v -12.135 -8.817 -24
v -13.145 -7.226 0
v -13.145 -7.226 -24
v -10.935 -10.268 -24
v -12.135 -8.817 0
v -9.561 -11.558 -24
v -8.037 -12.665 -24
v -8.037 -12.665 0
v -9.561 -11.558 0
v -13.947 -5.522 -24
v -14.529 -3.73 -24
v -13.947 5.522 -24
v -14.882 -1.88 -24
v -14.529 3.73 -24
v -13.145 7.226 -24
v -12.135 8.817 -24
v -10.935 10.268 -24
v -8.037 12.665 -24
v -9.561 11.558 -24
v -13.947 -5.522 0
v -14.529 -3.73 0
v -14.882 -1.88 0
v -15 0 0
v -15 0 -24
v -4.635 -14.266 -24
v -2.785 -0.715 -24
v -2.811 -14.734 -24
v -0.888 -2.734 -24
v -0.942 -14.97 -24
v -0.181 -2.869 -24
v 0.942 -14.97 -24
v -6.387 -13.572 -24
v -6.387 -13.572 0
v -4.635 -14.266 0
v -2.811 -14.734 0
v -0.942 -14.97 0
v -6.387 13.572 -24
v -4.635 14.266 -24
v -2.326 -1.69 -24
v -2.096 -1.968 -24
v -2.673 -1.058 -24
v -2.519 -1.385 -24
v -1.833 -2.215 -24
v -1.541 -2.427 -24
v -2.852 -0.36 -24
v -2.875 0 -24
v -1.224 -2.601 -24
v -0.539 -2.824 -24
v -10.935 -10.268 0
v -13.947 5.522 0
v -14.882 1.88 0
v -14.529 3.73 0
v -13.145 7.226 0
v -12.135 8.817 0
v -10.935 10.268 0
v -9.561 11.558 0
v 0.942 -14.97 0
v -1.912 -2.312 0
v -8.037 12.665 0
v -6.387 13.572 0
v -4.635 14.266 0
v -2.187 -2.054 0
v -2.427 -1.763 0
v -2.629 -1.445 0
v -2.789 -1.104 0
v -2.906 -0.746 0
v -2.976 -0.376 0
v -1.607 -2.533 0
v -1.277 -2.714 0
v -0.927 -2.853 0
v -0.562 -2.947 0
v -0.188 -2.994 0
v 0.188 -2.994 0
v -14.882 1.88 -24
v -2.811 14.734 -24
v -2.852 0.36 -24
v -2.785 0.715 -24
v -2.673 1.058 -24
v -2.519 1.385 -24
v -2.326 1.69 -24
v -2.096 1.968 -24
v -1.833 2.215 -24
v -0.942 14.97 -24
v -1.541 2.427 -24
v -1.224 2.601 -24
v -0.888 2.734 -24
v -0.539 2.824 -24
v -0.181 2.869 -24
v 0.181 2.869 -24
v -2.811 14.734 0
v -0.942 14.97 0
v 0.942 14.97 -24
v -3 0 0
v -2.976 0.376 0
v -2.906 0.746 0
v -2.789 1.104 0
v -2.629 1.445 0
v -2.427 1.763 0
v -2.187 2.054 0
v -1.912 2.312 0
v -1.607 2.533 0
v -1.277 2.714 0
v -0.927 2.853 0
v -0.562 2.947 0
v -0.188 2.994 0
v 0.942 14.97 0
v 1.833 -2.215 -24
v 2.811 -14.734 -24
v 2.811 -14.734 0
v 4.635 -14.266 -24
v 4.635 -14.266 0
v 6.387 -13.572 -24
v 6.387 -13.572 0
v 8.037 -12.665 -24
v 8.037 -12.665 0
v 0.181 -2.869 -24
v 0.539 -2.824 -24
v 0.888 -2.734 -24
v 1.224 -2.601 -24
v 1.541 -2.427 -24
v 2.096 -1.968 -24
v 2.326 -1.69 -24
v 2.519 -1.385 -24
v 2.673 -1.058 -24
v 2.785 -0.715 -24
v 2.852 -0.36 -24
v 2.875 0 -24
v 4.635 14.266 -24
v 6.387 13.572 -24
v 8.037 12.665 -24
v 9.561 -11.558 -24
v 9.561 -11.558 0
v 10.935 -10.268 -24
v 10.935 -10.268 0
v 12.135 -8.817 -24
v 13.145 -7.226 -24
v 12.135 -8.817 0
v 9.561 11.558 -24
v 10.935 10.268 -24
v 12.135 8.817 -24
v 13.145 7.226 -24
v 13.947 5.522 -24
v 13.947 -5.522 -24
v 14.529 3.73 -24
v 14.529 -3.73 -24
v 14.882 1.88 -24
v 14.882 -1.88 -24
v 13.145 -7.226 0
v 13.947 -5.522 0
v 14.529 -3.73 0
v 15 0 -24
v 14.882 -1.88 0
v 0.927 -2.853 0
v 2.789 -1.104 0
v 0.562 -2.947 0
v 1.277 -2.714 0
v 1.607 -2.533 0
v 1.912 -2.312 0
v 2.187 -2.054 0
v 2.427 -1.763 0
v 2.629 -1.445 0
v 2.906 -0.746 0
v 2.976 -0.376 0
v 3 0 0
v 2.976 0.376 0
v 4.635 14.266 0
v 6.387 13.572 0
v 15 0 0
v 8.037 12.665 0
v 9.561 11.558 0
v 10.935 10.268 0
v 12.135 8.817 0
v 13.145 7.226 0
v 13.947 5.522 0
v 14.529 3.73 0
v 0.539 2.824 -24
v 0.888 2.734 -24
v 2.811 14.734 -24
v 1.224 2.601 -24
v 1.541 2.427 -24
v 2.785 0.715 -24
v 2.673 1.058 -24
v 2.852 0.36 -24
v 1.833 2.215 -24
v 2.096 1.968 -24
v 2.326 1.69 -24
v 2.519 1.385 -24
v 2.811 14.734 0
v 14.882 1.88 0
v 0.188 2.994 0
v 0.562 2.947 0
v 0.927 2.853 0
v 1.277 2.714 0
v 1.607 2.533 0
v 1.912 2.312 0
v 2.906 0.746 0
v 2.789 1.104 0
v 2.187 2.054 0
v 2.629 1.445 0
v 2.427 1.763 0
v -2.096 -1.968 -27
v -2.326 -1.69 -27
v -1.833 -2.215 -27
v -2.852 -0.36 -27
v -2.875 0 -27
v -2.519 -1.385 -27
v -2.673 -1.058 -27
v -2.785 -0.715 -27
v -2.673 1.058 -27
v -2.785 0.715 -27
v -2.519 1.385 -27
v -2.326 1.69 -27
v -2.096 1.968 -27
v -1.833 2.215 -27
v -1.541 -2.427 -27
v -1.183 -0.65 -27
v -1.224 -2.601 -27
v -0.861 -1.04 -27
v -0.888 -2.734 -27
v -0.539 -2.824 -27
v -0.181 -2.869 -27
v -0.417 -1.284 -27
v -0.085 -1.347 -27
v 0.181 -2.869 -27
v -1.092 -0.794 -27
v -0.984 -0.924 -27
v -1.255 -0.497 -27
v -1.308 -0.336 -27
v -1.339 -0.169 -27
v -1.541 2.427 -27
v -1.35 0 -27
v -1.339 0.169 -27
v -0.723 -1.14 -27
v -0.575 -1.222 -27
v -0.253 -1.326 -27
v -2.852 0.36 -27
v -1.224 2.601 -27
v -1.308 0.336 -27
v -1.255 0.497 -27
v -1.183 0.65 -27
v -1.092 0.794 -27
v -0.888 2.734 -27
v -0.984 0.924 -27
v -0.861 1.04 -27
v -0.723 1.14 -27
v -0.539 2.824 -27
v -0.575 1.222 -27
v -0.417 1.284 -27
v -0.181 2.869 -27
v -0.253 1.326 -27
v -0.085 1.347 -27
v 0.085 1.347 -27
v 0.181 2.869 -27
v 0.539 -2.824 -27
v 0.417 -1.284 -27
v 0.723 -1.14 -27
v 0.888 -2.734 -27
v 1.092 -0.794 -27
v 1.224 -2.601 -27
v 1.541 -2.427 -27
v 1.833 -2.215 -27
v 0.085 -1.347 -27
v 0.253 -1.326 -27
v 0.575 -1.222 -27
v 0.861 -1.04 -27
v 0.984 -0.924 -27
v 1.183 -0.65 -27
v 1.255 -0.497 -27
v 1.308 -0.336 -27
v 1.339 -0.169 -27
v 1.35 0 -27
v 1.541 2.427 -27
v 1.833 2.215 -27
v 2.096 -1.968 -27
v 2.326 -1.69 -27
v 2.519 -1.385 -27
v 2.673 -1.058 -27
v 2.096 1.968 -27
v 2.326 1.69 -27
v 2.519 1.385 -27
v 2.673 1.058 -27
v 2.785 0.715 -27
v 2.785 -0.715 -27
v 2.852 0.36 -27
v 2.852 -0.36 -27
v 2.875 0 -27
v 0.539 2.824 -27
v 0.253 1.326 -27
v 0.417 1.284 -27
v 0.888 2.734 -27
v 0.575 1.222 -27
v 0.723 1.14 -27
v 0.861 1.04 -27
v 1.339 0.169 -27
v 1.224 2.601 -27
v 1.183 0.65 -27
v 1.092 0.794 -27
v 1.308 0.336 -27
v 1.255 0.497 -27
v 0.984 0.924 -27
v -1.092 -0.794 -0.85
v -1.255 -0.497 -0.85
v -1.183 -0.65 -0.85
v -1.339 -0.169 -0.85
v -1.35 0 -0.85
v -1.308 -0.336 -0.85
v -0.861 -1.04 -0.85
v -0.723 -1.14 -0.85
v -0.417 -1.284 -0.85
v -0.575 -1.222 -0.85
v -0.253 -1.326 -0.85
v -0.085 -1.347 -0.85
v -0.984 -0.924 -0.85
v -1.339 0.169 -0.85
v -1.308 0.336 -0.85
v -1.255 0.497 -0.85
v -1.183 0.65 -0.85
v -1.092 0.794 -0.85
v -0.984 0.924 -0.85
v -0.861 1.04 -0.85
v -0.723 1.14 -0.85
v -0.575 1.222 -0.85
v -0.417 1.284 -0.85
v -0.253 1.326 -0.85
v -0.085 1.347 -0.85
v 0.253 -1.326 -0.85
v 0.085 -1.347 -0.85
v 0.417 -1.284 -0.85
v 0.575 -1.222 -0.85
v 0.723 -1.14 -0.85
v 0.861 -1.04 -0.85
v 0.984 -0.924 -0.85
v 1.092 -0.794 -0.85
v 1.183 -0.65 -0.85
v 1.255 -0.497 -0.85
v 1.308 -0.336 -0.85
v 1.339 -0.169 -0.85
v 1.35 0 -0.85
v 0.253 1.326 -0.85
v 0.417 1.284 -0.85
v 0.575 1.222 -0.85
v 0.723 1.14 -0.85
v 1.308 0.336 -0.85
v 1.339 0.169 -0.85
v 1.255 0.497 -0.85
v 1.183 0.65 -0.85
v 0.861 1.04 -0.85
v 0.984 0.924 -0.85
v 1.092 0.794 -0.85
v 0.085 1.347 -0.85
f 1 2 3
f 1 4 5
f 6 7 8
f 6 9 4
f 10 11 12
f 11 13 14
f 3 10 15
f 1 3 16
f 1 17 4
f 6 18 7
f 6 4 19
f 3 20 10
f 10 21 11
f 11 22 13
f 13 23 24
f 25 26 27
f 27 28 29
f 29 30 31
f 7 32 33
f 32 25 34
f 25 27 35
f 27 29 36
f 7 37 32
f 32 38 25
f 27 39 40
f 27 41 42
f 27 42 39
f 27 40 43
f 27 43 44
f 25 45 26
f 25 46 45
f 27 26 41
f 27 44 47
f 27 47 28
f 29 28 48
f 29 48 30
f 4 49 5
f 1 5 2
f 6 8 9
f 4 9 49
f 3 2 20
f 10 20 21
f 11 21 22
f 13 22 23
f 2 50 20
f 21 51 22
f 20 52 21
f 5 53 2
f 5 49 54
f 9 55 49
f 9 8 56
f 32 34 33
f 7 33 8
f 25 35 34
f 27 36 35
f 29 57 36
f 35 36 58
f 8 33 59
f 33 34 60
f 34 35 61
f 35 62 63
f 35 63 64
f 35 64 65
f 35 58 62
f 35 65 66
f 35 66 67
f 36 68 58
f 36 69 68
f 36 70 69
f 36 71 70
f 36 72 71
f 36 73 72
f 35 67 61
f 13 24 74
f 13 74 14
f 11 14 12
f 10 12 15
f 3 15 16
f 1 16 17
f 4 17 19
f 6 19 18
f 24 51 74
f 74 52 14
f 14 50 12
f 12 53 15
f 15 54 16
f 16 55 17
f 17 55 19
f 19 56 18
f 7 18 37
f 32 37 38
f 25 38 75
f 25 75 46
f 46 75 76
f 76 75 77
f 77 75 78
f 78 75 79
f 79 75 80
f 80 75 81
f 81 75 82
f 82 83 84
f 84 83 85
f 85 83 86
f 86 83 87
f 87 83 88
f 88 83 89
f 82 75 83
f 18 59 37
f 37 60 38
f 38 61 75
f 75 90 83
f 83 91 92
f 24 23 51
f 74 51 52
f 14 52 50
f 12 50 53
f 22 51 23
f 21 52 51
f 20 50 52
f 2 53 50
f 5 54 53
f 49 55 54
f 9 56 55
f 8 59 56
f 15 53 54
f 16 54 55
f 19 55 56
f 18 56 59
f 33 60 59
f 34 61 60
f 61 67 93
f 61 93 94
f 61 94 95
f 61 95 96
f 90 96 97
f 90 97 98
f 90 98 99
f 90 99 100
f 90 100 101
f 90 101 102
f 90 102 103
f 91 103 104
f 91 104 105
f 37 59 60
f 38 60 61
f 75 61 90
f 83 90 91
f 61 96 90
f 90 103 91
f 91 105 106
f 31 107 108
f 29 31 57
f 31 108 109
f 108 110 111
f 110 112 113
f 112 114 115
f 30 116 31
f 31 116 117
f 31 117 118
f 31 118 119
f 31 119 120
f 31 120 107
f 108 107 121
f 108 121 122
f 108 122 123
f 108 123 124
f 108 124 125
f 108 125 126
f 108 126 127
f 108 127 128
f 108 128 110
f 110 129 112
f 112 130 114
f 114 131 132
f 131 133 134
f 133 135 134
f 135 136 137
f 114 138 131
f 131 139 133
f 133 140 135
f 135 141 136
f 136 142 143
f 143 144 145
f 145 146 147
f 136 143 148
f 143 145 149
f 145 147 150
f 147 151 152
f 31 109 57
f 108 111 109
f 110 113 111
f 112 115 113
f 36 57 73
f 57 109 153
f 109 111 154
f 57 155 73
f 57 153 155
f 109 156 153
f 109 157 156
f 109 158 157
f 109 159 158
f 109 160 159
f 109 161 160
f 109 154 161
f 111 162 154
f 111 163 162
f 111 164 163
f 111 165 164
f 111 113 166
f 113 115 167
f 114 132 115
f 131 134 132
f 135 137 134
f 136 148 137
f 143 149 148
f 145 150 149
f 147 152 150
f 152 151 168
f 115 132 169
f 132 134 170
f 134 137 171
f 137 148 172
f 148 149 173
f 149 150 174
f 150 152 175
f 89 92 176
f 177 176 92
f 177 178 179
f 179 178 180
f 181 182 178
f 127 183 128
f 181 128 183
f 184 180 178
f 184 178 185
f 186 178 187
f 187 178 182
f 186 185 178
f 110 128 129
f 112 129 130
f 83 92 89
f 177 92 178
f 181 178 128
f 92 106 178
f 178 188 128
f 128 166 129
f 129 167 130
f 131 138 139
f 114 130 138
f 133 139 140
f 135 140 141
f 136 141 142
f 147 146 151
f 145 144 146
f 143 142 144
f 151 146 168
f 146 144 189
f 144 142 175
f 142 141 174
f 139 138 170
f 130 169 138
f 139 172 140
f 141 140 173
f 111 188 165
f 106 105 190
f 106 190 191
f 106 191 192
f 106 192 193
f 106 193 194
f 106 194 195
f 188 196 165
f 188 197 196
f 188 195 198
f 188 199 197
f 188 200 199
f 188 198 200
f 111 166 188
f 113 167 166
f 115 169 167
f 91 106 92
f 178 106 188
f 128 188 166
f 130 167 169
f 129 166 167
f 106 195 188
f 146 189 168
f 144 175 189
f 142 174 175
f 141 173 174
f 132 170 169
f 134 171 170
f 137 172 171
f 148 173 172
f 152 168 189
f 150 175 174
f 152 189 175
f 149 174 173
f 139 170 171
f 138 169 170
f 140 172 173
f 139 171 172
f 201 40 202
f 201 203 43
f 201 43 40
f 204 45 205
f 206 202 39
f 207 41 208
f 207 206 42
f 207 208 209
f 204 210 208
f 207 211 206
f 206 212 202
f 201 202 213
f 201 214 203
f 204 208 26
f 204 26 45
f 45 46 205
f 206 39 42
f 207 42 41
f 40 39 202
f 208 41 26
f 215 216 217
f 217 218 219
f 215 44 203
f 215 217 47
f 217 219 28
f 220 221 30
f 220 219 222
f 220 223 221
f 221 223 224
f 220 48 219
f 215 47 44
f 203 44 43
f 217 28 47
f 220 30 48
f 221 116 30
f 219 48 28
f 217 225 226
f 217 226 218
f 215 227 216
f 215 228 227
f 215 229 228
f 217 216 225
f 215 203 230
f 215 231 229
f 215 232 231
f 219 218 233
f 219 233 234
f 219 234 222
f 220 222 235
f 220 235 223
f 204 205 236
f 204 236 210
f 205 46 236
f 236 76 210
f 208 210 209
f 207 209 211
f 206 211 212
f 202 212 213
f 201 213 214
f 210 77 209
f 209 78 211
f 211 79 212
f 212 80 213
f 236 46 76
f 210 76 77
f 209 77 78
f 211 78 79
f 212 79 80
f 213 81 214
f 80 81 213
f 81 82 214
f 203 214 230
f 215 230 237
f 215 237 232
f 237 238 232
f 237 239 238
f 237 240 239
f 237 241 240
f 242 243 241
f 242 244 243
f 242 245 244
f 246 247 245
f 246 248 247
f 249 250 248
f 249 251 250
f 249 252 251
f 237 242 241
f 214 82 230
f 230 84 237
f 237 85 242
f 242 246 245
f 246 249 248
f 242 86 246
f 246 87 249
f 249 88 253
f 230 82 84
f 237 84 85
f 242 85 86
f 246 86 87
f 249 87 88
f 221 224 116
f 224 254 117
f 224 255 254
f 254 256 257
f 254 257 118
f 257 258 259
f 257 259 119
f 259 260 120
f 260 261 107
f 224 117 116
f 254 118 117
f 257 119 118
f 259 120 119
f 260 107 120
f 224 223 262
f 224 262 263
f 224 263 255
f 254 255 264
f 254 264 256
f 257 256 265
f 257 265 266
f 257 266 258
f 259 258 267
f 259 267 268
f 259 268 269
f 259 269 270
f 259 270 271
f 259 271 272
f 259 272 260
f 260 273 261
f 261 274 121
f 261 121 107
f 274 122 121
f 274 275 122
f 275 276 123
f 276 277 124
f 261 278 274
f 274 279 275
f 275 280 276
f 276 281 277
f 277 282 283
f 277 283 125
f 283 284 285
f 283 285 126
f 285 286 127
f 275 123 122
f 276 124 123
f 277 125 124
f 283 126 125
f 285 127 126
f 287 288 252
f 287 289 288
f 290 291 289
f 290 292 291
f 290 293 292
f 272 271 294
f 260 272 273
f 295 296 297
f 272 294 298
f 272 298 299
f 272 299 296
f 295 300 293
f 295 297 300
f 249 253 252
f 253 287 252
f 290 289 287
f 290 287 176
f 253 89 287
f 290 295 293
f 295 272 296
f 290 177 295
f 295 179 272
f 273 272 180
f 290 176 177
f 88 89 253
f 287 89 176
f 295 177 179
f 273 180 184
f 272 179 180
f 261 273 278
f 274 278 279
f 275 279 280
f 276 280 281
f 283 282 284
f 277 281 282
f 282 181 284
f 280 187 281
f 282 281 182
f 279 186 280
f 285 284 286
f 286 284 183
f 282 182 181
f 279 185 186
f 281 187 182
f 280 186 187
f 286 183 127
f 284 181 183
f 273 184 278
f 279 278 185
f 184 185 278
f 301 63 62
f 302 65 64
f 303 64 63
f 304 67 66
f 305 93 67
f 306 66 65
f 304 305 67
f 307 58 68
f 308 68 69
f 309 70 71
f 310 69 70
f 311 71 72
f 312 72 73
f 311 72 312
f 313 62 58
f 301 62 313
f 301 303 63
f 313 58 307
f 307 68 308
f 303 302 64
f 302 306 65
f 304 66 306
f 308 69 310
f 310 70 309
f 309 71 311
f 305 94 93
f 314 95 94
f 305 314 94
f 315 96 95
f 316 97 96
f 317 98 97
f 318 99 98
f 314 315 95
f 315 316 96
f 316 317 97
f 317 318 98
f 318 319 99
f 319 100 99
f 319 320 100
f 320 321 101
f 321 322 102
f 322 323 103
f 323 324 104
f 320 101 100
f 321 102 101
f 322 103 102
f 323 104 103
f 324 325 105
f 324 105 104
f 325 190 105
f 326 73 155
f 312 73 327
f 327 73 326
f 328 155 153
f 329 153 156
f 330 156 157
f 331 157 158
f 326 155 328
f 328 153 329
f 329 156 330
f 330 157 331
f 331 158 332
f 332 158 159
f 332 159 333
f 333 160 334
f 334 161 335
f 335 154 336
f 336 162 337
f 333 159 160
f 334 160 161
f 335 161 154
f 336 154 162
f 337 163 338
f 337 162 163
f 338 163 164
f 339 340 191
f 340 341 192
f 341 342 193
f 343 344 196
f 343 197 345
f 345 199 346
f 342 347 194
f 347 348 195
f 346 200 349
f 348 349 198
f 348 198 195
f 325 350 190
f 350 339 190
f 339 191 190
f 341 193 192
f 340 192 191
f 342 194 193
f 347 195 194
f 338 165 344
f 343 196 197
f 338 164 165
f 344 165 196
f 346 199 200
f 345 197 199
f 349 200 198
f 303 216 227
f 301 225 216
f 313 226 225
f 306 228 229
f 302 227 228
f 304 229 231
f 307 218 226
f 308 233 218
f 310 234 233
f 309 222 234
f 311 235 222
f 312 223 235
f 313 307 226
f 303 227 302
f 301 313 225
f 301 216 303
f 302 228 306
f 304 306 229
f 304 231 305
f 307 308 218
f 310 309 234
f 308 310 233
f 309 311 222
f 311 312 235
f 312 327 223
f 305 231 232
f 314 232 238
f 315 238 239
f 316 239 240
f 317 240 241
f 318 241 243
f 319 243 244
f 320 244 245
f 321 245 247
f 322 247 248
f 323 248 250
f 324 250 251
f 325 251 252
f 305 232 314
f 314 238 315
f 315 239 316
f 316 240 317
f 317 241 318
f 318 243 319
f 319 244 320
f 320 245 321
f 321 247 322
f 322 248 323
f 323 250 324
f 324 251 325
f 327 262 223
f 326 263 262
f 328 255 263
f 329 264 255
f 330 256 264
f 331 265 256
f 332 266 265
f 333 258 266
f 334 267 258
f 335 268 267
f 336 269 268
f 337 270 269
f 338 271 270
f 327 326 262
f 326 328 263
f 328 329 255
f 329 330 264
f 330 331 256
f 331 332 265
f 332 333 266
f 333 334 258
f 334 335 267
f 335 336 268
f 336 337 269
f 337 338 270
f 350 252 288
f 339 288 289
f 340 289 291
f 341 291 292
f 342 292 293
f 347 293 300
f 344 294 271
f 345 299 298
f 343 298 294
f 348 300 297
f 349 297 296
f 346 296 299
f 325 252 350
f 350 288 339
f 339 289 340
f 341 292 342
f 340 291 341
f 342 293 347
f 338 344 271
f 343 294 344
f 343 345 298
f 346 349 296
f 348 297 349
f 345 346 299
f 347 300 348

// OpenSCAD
$fn = 50;

difference() {
	union() {
		translate(v = [0, 0, -24.0]) {
			cylinder(h = 24, r = 15.0);
		}
		#translate(v = [0, 0, -27.0]) {
			cylinder(h = 27, r = 2.875);
		}
	}
	union() {
		translate(v = [0, 0, 0]) {
			rotate(a = [0, 0, 0]) {
				difference() {
					union() {
						translate(v = [0, 0, -27.0]) {
							cylinder(h = 27, r = 1.0);
						}
						translate(v = [0, 0, -0.85]) {
							cylinder(h = 0.85, r1 = 1.35, r2 = 3.0);
						}
						translate(v = [0, 0, -27.0]) {
							cylinder(h = 27, r = 1.35);
						}
						translate(v = [0, 0, -27.0]) {
							cylinder(h = 27, r = 1.0);
						}
					}
					union();
				}
			}
		}
	}
}
